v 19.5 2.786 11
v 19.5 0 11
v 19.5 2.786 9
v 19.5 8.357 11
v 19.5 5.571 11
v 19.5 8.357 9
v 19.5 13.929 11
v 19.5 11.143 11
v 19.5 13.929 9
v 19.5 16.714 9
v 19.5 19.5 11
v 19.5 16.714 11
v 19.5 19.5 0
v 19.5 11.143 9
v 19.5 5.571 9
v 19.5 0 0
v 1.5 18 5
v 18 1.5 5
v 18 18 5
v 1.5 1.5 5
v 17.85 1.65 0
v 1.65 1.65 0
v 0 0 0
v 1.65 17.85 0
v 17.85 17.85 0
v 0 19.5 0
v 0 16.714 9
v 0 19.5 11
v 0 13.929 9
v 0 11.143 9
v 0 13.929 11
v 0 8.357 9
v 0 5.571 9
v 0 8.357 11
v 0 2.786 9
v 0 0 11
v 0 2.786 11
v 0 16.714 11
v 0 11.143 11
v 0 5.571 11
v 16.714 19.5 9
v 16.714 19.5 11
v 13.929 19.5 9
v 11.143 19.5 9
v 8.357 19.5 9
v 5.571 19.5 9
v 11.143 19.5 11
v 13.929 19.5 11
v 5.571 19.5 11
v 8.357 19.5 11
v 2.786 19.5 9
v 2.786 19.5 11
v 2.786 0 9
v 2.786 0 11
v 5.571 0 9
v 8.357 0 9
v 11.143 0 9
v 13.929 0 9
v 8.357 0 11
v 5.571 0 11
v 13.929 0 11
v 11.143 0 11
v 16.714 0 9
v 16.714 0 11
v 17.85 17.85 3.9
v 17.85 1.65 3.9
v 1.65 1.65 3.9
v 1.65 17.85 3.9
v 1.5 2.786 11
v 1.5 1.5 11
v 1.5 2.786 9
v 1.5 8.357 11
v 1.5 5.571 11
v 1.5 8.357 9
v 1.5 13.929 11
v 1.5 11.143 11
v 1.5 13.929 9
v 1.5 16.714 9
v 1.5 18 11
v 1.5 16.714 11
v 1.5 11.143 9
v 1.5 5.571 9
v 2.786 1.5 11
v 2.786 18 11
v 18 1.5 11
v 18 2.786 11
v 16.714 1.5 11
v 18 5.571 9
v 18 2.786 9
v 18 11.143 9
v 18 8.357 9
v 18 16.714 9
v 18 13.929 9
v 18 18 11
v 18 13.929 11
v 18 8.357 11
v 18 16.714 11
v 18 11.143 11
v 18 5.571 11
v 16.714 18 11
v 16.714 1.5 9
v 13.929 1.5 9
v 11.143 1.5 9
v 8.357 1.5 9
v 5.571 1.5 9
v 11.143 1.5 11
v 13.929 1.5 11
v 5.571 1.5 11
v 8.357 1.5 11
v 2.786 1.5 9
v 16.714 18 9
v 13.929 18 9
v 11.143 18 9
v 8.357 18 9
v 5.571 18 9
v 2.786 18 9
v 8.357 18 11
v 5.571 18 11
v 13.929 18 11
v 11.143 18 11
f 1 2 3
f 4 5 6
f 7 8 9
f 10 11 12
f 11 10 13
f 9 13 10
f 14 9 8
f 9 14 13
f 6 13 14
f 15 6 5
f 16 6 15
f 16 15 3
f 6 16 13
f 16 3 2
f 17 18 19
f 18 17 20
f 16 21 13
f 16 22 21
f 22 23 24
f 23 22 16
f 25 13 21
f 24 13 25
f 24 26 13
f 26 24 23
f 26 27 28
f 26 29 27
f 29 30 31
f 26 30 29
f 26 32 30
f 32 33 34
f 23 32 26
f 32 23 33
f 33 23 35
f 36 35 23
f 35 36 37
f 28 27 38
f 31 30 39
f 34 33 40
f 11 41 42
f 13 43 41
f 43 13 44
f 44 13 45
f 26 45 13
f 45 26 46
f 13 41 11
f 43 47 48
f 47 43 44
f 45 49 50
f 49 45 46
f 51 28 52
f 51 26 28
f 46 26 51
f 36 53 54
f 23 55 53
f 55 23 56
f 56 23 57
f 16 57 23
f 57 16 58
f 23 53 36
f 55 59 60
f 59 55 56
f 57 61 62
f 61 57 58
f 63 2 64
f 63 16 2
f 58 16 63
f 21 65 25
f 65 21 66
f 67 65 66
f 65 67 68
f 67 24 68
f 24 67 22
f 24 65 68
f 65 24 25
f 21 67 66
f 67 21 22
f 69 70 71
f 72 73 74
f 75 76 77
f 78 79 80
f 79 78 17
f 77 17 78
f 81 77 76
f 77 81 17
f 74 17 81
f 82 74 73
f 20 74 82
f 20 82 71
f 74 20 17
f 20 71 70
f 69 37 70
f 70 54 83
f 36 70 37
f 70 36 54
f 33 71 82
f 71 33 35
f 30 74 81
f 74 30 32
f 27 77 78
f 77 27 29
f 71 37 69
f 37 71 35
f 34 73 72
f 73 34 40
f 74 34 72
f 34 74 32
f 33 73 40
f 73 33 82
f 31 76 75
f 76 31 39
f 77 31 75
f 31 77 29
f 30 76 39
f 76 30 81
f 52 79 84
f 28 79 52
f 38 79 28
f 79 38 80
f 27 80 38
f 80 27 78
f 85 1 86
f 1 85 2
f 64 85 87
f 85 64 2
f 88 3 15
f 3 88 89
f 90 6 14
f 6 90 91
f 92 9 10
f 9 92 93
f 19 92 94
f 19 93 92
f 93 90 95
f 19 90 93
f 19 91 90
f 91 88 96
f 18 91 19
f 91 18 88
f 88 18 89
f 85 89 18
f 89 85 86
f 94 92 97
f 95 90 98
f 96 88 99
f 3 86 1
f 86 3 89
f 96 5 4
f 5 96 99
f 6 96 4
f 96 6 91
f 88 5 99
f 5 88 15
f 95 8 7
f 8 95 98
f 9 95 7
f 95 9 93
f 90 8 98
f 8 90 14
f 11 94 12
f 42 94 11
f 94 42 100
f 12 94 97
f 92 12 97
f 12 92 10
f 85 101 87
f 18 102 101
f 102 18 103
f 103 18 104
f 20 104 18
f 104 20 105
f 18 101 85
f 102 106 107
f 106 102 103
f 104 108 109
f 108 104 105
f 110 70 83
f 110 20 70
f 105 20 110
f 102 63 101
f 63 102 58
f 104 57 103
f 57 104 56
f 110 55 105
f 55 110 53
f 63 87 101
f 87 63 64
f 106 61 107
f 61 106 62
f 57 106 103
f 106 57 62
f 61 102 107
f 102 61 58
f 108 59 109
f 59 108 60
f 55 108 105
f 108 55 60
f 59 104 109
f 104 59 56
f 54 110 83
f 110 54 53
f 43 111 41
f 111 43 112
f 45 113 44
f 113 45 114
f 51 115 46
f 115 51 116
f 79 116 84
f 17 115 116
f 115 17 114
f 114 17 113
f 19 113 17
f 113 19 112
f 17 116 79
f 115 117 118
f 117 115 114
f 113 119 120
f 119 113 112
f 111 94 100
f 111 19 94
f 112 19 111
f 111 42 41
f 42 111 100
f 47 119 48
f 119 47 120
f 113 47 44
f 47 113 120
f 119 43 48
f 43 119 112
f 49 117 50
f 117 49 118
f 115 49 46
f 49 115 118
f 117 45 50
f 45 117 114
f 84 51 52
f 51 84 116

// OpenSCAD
// file: CommonModules.scad
//    $$$$$$\   $$$$$$\   $$$$$$\  $$\   $$\ $$$$$$\ $$$$$$$\  $$$$$$$$\ 
//    $$  __$$\ $$  __$$\ $$  __$$\ $$ |  $$ |\_$$  _|$$  __$$\ $$  _____|
//    $$ /  $$ |$$ /  \__|$$ /  $$ |$$ |  $$ |  $$ |  $$ |  $$ |$$ |      
//    $$$$$$$$ |$$ |      $$ |  $$ |$$ |  $$ |  $$ |  $$$$$$$  |$$$$$\    
//    $$  __$$ |$$ |      $$ |  $$ |$$ |  $$ |  $$ |  $$  __$$< $$  __|   
//    $$ |  $$ |$$ |  $$\ $$ $$\$$ |$$ |  $$ |  $$ |  $$ |  $$ |$$ |      
//    $$ |  $$ |\$$$$$$  |\$$$$$$ / \$$$$$$  |$$$$$$\ $$ |  $$ |$$$$$$$$\ 
//    \__|  \__| \______/  \___$$$\  \______/ \______|\__|  \__|\________|
//                            \___|                                      
//      
//       Print and play - OpenScad project - by Bekkalizer and ChatGPT
// 
// This file is part of the Acquire stl project.
// Copyright (C) 2025 Bekkalizer
//
// Acquire stl project is free software: you can redistribute it and/or modify
// it under the terms of the GNU General Public License as published
// by the Free Software Foundation, either version 3 of the License,
// or (at your option) any later version.
//
// Acquire stl project is distributed in the hope that it will be useful,
// but WITHOUT ANY WARRANTY; without even the implied warranty of
// MERCHANTABILITY or FITNESS FOR A PARTICULAR PURPOSE. See the
// GNU General Public License for more details.
//
// You should have received a copy of the GNU General Public License
// along with this program. If not, see <https://www.gnu.org/licenses/>.

module cube_with_extruded_bottom( cube_size = [19.5, 19.5, 5] ) {
    //Main build script parameters:
    max_width = 19.2;
    top_lip = 2;
    top_height = 3;
    //Calculated hole size:
    inside_margins = 1;
    hole_width = max_width - 2 * (top_lip) + inside_margins;
    hole_height = top_height + inside_margins;
    
    hole_size = [hole_width, hole_width, hole_height]; // Hole dimensions (same height as cube)
    hole_offset = [(cube_size[0] - hole_size[0]) / 2, (cube_size[1] - hole_size[1]) / 2, -0.1]; // Centered on bottom
    difference() {
        // Main Cube
        cube(cube_size);
        
        // Hole Cube (subtracting from bottom)
        translate(hole_offset)
            cube(hole_size);
    }
}
// main file
//    $$$$$$\   $$$$$$\   $$$$$$\  $$\   $$\ $$$$$$\ $$$$$$$\  $$$$$$$$\ 
//    $$  __$$\ $$  __$$\ $$  __$$\ $$ |  $$ |\_$$  _|$$  __$$\ $$  _____|
//    $$ /  $$ |$$ /  \__|$$ /  $$ |$$ |  $$ |  $$ |  $$ |  $$ |$$ |      
//    $$$$$$$$ |$$ |      $$ |  $$ |$$ |  $$ |  $$ |  $$$$$$$  |$$$$$\    
//    $$  __$$ |$$ |      $$ |  $$ |$$ |  $$ |  $$ |  $$  __$$< $$  __|   
//    $$ |  $$ |$$ |  $$\ $$ $$\$$ |$$ |  $$ |  $$ |  $$ |  $$ |$$ |      
//    $$ |  $$ |\$$$$$$  |\$$$$$$ / \$$$$$$  |$$$$$$\ $$ |  $$ |$$$$$$$$\ 
//    \__|  \__| \______/  \___$$$\  \______/ \______|\__|  \__|\________|
//                            \___|                                      
//      
//       Print and play - OpenScad project - by Bekkalizer and ChatGPT

use <CommonModules.scad>

// Parameters
bottom_width = 19.5;
bottom_height = 5;
wall_width = 1.5;
wall_height = 4;
segments = 3;
segment_height = 2;

module castle_top() {
    cube([wall_width,bottom_width,wall_height]);
    segment_width = bottom_width / (segments * 2 +1);
    translate([0,0,wall_height]) {
        for( i = [0 : segments] ) {
            translate([0,i * segment_width * 2, 0]) {
                cube([wall_width, segment_width, segment_height]);
            }
        }
    }
}

union () {
    cube_with_extruded_bottom([bottom_width, bottom_width, bottom_height]);

    // Draw the castle-like roof
    translate([0,0,bottom_height]) {
        castle_top();
    }
    
    translate([bottom_width - wall_width,0,bottom_height]) {
        castle_top();
    }
    
    rotate([0,0,90]) {
        translate([0,-bottom_width,bottom_height]) {
            castle_top();
        }
        translate([bottom_width-wall_width,-bottom_width,bottom_height]) {
            castle_top();
        }
    }
}
